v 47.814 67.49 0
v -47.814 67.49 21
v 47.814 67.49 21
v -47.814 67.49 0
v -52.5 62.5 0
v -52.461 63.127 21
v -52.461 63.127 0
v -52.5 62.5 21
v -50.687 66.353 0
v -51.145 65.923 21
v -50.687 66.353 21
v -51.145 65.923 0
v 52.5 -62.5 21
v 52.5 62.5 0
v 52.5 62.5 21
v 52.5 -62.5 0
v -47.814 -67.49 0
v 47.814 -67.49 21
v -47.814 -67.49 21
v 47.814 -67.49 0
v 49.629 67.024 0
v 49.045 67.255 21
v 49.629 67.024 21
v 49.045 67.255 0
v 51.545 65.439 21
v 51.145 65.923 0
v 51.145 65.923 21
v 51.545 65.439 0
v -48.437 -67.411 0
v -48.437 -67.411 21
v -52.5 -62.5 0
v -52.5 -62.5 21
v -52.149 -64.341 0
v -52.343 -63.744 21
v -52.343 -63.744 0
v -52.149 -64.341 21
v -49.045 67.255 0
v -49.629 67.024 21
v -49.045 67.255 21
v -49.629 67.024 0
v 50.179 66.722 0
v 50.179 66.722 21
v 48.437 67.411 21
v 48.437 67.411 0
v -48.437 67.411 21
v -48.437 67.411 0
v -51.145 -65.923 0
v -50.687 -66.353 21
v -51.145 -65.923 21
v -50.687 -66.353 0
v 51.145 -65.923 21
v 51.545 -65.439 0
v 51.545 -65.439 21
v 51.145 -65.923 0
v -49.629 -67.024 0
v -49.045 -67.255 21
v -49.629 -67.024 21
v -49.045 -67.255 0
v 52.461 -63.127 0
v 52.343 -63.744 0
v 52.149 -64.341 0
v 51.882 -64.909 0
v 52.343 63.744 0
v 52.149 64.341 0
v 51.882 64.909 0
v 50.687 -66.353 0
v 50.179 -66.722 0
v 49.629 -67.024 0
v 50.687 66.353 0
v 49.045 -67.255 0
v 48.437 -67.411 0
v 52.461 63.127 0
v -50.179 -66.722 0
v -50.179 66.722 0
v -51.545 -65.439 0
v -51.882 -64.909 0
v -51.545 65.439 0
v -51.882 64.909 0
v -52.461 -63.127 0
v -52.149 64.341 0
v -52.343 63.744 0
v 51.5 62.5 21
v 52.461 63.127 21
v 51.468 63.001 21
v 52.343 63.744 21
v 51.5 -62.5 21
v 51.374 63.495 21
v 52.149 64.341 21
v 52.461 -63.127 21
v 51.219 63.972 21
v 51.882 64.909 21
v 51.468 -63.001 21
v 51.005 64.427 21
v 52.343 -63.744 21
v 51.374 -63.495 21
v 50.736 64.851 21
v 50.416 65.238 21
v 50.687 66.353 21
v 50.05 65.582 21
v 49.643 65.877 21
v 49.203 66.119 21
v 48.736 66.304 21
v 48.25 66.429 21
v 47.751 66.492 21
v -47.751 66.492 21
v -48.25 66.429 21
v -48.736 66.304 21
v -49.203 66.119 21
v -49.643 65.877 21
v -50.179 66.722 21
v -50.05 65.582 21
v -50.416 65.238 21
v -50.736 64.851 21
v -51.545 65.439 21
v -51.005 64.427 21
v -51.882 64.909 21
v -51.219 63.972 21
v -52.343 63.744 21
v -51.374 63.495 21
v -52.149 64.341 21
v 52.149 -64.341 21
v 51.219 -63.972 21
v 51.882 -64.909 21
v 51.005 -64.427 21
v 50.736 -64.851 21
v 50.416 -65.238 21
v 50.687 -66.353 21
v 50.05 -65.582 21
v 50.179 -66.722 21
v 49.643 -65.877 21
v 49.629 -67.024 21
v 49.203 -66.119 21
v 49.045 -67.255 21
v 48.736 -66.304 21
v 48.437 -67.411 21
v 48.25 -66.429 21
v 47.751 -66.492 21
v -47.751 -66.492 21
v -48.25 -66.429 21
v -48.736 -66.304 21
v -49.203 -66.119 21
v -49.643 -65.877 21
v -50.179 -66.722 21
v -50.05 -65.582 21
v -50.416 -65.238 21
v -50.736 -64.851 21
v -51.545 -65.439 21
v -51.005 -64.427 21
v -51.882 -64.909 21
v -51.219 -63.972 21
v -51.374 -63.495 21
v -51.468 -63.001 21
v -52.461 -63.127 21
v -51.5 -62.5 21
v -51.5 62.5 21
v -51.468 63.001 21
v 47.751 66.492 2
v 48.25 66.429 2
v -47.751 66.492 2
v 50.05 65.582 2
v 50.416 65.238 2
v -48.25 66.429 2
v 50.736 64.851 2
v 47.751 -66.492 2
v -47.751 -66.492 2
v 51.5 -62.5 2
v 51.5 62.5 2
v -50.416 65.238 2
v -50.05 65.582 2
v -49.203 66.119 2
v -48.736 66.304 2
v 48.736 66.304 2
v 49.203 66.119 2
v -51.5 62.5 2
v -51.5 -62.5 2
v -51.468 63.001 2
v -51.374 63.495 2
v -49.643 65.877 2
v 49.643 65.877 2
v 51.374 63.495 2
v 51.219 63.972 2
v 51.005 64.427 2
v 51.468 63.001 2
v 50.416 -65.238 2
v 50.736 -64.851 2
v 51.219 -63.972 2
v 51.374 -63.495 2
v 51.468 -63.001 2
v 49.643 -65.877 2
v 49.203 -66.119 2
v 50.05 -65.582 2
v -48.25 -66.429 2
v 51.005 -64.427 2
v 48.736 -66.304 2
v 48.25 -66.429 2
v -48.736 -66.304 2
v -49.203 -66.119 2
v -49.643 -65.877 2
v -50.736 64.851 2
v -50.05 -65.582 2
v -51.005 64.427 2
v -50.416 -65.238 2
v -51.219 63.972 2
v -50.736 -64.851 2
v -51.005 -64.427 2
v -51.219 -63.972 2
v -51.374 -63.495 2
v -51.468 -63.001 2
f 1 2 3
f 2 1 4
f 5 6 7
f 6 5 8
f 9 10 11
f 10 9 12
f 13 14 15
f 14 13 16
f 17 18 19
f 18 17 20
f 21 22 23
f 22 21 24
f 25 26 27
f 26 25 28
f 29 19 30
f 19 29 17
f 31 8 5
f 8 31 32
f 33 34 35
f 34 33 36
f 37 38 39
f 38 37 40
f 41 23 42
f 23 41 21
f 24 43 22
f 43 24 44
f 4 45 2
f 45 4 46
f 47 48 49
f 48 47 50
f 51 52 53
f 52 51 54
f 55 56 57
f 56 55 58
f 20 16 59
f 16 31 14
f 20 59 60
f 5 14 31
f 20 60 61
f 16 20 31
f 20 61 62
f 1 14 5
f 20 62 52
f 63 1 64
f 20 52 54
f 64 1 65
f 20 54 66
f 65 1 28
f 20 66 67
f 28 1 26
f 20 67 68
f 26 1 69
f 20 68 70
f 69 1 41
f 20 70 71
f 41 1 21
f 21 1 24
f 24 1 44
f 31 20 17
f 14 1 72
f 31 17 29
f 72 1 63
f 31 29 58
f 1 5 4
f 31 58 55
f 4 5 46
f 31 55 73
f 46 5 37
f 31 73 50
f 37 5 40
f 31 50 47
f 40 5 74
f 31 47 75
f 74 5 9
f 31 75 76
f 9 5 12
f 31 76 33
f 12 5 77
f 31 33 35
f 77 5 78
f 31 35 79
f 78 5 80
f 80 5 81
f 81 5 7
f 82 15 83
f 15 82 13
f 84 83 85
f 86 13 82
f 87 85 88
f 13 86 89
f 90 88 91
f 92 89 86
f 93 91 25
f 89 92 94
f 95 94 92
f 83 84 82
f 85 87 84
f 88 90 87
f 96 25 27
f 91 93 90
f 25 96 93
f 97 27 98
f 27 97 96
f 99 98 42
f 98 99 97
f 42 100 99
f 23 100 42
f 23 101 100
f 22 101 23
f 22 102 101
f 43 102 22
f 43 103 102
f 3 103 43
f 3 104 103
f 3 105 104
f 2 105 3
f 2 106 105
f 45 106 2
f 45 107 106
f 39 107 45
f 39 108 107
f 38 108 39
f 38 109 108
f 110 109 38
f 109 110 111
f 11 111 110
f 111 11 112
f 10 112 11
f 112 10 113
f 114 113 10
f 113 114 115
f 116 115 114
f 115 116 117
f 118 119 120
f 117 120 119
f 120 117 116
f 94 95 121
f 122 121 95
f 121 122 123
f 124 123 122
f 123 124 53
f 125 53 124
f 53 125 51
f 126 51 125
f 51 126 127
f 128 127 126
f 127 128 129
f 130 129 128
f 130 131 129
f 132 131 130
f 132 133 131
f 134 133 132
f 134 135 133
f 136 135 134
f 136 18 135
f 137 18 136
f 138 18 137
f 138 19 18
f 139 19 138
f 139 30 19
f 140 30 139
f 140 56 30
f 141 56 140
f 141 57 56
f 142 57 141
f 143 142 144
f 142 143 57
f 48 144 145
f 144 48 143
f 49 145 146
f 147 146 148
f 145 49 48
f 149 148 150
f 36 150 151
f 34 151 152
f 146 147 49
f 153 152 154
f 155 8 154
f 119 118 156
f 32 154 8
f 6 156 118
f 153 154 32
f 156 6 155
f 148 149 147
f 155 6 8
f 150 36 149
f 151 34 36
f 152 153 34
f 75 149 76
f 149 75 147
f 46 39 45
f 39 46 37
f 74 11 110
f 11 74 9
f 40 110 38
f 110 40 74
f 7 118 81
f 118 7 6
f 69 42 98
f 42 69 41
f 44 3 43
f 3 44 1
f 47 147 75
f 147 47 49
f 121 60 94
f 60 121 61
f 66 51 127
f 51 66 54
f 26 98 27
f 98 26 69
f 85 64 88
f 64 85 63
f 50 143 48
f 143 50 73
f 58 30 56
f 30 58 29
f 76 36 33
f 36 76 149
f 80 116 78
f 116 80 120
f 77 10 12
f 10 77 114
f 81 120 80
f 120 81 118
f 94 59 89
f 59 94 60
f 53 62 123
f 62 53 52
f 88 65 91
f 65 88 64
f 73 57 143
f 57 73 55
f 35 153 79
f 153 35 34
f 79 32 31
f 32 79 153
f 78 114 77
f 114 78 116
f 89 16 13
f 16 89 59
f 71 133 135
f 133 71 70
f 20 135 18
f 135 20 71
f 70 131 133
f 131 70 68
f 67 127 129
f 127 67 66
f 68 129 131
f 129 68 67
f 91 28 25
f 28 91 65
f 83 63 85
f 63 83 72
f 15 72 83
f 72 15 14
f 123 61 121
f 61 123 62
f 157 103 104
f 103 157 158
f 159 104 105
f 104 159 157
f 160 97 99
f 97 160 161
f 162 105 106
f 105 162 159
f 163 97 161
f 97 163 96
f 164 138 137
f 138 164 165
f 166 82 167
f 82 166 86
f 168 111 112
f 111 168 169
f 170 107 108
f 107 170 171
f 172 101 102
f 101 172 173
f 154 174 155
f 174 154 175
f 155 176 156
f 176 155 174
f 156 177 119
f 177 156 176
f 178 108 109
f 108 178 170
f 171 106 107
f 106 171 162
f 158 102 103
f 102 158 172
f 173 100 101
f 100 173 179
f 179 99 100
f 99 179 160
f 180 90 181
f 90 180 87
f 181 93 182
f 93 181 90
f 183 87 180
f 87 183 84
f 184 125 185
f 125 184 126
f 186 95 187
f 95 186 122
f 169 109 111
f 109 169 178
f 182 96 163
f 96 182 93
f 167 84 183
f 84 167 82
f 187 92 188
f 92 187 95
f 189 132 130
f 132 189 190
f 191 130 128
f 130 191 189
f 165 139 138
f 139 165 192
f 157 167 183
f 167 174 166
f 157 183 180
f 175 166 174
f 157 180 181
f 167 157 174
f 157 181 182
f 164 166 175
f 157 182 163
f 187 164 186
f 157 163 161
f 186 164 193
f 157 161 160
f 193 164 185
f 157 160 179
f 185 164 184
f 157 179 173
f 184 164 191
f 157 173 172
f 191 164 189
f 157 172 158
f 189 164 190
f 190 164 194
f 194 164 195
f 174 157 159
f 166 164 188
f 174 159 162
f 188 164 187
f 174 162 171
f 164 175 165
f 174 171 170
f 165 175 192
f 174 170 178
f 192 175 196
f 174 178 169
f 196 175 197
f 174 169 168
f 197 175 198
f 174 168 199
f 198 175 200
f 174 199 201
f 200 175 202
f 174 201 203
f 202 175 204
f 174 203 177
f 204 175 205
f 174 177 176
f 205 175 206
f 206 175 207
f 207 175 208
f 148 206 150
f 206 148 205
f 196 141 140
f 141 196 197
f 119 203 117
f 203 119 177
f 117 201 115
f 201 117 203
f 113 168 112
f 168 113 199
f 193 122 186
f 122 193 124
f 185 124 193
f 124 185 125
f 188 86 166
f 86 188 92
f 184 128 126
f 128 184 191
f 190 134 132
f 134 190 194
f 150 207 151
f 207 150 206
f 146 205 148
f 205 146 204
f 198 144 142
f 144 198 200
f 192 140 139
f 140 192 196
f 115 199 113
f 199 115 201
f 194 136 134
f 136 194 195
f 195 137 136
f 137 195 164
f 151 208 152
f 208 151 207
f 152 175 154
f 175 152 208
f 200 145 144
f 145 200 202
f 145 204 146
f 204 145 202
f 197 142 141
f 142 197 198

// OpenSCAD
$fn = 50;


difference() {
	union() {
		hull() {
			translate(v = [-47.5000000000, 62.5000000000, 0]) {
				cylinder(h = 21, r = 5);
			}
			translate(v = [47.5000000000, 62.5000000000, 0]) {
				cylinder(h = 21, r = 5);
			}
			translate(v = [-47.5000000000, -62.5000000000, 0]) {
				cylinder(h = 21, r = 5);
			}
			translate(v = [47.5000000000, -62.5000000000, 0]) {
				cylinder(h = 21, r = 5);
			}
		}
	}
	union() {
		translate(v = [0, 0, 2]) {
			hull() {
				translate(v = [-47.5000000000, 62.5000000000, 0]) {
					cylinder(h = 19, r = 4);
				}
				translate(v = [47.5000000000, 62.5000000000, 0]) {
					cylinder(h = 19, r = 4);
				}
				translate(v = [-47.5000000000, -62.5000000000, 0]) {
					cylinder(h = 19, r = 4);
				}
				translate(v = [47.5000000000, -62.5000000000, 0]) {
					cylinder(h = 19, r = 4);
				}
			}
		}
	}
}
